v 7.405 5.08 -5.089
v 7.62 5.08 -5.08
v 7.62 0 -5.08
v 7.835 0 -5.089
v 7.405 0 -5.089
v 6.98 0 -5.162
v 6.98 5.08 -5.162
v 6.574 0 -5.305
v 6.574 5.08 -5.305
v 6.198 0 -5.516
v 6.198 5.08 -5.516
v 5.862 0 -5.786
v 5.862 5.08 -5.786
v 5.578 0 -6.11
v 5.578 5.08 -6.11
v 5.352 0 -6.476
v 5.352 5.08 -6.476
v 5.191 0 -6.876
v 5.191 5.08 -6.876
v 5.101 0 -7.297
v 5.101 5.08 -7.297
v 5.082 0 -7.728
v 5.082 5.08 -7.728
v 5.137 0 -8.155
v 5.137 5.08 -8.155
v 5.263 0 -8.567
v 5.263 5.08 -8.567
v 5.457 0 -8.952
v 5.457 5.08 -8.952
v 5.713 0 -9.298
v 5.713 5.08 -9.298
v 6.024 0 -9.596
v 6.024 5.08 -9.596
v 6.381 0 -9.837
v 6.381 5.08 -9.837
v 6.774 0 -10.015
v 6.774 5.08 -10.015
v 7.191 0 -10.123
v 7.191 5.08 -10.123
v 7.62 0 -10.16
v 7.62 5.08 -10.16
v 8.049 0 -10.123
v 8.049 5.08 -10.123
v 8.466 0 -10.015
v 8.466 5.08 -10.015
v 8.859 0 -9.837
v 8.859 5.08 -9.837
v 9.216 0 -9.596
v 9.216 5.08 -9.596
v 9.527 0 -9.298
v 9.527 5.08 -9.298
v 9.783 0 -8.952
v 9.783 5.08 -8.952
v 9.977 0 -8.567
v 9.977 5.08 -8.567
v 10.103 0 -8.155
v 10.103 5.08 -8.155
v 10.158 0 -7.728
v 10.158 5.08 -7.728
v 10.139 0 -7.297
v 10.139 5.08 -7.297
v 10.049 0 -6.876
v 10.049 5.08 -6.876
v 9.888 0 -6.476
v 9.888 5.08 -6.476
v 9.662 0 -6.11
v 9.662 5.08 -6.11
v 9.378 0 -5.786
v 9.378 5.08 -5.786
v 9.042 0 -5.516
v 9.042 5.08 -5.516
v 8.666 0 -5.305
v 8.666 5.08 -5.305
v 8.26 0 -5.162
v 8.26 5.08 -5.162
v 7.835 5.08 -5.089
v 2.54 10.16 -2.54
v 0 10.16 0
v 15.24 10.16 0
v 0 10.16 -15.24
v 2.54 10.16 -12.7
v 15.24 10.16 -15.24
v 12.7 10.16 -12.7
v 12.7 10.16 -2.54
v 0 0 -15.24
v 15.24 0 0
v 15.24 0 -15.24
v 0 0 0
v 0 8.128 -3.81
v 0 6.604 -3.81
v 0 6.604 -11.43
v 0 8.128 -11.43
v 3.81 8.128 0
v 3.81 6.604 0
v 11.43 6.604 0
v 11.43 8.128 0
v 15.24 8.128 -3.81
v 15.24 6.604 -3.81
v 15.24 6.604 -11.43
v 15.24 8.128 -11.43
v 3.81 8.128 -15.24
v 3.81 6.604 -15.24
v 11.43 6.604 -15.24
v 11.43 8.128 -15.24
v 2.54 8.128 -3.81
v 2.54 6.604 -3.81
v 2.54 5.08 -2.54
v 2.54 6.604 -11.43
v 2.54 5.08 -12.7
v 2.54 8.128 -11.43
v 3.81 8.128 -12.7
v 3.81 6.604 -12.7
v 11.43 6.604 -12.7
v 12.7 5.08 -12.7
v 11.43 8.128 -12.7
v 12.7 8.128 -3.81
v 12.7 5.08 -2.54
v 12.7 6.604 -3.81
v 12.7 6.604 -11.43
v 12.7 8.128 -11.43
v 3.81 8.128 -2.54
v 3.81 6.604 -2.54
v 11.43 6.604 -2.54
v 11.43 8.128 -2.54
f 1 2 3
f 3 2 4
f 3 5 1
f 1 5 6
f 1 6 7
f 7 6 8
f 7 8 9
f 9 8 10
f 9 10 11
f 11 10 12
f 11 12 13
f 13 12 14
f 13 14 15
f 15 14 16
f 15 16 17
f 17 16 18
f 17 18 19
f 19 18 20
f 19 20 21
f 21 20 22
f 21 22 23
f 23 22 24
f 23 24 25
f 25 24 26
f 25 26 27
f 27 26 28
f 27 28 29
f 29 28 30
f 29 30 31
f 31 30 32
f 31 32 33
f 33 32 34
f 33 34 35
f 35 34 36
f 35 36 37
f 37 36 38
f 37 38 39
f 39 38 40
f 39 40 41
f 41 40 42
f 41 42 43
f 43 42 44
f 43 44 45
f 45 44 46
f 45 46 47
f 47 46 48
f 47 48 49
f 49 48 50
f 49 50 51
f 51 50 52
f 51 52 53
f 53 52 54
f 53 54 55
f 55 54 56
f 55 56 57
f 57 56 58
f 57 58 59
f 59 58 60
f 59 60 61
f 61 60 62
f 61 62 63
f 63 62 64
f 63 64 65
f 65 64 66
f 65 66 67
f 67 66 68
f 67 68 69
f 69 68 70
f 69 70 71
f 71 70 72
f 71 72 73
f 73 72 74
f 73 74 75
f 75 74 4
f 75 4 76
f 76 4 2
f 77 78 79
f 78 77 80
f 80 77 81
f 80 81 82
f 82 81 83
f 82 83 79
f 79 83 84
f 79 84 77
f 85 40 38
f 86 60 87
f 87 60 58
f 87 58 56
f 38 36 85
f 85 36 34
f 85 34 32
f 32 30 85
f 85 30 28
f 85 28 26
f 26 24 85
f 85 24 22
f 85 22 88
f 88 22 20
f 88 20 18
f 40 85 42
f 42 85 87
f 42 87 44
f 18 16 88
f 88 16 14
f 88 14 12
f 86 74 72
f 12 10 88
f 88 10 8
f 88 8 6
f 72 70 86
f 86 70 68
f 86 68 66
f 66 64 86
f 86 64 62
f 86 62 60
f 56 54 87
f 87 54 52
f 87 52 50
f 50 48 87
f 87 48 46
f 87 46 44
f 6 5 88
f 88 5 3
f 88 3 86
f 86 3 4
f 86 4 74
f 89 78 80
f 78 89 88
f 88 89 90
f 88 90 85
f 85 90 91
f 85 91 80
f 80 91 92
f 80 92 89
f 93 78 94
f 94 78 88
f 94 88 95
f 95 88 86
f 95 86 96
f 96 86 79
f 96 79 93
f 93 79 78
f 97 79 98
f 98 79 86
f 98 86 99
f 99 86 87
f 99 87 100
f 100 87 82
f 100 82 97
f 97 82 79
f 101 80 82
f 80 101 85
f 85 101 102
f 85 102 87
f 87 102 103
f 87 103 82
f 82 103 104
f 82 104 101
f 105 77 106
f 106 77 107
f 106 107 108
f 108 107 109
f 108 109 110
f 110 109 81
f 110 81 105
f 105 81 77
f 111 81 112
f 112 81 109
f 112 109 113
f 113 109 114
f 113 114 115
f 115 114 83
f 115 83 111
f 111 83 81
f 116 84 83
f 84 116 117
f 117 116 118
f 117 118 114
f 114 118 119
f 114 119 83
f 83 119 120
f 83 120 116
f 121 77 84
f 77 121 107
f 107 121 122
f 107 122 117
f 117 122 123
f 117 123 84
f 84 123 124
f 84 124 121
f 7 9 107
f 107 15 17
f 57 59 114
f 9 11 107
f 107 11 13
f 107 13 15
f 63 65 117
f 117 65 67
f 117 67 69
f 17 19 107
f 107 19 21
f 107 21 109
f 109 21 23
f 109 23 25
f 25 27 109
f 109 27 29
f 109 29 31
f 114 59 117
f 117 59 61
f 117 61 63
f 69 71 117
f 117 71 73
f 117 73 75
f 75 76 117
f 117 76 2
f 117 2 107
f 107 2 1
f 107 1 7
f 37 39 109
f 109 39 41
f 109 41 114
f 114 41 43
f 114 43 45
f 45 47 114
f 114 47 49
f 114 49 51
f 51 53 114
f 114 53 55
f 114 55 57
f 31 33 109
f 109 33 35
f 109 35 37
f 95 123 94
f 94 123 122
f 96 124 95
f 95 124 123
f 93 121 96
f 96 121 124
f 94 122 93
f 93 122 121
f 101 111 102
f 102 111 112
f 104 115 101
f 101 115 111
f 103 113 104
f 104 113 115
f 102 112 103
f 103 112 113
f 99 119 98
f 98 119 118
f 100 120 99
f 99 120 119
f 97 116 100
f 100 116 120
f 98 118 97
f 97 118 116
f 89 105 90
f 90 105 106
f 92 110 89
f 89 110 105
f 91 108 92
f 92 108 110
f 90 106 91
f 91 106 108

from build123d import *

# Parameters (mm, degrees)
SKETCH1_W           = 15.24
SKETCH1_H           = 15.24
BOSS_EXTRUDE1_DEPTH = 10.16
SKETCH2_R           = 2.54
CUT_EXTRUDE3_DEPTH  = 10.16
SKETCH5_W           = 10.16
SKETCH5_H           = 10.16
CUT_EXTRUDE5_DEPTH  = 5.08
SKETCH7_W           = 7.62
SKETCH7_H           = 1.524
CUT_EXTRUDE6_DEPTH  = 15.24
SKETCH8_W           = 7.62
SKETCH8_H           = 1.524
CUT_EXTRUDE7_DEPTH  = 15.24


with BuildPart() as part:
    # Sketch1 → Boss-Extrude1 (new body)
    with BuildSketch(Plane(origin=(0, 0, 0), x_dir=(1, 0, 0), z_dir=(0, 1, 0))):
        with Locations((7.62, 7.62)):
            Rectangle(SKETCH1_W, SKETCH1_H)
    extrude(amount=BOSS_EXTRUDE1_DEPTH)

    # Sketch2 → Cut-Extrude3 (cut)
    with BuildSketch(Plane(origin=(0, 0, 0), x_dir=(1, 0, 0), z_dir=(0, 1, 0))):
        with Locations((7.62, 7.62)):
            Circle(SKETCH2_R)
    extrude(amount=CUT_EXTRUDE3_DEPTH, mode=Mode.SUBTRACT)

    # Sketch5 → Cut-Extrude5 (cut)
    with BuildSketch(Plane(origin=(0, 10.16, 0), x_dir=(1, 0, 0), z_dir=(0, 1, 0))):
        with Locations((7.62, 7.62)):
            Rectangle(SKETCH5_W, SKETCH5_H)
    extrude(amount=-CUT_EXTRUDE5_DEPTH, mode=Mode.SUBTRACT)

    # Sketch7 → Cut-Extrude6 (cut)
    with BuildSketch(Plane.XY):
        with Locations((7.62, 7.366)):
            Rectangle(SKETCH7_W, SKETCH7_H)
    extrude(amount=-CUT_EXTRUDE6_DEPTH, mode=Mode.SUBTRACT)

    # Sketch8 → Cut-Extrude7 (cut)
    with BuildSketch(Plane(origin=(15.24, 0, 0), x_dir=(0, 0, -1), z_dir=(1, 0, 0))):
        with Locations((7.62, 7.366)):
            Rectangle(SKETCH8_W, SKETCH8_H)
    extrude(amount=-CUT_EXTRUDE7_DEPTH, mode=Mode.SUBTRACT)


solid = part.part
